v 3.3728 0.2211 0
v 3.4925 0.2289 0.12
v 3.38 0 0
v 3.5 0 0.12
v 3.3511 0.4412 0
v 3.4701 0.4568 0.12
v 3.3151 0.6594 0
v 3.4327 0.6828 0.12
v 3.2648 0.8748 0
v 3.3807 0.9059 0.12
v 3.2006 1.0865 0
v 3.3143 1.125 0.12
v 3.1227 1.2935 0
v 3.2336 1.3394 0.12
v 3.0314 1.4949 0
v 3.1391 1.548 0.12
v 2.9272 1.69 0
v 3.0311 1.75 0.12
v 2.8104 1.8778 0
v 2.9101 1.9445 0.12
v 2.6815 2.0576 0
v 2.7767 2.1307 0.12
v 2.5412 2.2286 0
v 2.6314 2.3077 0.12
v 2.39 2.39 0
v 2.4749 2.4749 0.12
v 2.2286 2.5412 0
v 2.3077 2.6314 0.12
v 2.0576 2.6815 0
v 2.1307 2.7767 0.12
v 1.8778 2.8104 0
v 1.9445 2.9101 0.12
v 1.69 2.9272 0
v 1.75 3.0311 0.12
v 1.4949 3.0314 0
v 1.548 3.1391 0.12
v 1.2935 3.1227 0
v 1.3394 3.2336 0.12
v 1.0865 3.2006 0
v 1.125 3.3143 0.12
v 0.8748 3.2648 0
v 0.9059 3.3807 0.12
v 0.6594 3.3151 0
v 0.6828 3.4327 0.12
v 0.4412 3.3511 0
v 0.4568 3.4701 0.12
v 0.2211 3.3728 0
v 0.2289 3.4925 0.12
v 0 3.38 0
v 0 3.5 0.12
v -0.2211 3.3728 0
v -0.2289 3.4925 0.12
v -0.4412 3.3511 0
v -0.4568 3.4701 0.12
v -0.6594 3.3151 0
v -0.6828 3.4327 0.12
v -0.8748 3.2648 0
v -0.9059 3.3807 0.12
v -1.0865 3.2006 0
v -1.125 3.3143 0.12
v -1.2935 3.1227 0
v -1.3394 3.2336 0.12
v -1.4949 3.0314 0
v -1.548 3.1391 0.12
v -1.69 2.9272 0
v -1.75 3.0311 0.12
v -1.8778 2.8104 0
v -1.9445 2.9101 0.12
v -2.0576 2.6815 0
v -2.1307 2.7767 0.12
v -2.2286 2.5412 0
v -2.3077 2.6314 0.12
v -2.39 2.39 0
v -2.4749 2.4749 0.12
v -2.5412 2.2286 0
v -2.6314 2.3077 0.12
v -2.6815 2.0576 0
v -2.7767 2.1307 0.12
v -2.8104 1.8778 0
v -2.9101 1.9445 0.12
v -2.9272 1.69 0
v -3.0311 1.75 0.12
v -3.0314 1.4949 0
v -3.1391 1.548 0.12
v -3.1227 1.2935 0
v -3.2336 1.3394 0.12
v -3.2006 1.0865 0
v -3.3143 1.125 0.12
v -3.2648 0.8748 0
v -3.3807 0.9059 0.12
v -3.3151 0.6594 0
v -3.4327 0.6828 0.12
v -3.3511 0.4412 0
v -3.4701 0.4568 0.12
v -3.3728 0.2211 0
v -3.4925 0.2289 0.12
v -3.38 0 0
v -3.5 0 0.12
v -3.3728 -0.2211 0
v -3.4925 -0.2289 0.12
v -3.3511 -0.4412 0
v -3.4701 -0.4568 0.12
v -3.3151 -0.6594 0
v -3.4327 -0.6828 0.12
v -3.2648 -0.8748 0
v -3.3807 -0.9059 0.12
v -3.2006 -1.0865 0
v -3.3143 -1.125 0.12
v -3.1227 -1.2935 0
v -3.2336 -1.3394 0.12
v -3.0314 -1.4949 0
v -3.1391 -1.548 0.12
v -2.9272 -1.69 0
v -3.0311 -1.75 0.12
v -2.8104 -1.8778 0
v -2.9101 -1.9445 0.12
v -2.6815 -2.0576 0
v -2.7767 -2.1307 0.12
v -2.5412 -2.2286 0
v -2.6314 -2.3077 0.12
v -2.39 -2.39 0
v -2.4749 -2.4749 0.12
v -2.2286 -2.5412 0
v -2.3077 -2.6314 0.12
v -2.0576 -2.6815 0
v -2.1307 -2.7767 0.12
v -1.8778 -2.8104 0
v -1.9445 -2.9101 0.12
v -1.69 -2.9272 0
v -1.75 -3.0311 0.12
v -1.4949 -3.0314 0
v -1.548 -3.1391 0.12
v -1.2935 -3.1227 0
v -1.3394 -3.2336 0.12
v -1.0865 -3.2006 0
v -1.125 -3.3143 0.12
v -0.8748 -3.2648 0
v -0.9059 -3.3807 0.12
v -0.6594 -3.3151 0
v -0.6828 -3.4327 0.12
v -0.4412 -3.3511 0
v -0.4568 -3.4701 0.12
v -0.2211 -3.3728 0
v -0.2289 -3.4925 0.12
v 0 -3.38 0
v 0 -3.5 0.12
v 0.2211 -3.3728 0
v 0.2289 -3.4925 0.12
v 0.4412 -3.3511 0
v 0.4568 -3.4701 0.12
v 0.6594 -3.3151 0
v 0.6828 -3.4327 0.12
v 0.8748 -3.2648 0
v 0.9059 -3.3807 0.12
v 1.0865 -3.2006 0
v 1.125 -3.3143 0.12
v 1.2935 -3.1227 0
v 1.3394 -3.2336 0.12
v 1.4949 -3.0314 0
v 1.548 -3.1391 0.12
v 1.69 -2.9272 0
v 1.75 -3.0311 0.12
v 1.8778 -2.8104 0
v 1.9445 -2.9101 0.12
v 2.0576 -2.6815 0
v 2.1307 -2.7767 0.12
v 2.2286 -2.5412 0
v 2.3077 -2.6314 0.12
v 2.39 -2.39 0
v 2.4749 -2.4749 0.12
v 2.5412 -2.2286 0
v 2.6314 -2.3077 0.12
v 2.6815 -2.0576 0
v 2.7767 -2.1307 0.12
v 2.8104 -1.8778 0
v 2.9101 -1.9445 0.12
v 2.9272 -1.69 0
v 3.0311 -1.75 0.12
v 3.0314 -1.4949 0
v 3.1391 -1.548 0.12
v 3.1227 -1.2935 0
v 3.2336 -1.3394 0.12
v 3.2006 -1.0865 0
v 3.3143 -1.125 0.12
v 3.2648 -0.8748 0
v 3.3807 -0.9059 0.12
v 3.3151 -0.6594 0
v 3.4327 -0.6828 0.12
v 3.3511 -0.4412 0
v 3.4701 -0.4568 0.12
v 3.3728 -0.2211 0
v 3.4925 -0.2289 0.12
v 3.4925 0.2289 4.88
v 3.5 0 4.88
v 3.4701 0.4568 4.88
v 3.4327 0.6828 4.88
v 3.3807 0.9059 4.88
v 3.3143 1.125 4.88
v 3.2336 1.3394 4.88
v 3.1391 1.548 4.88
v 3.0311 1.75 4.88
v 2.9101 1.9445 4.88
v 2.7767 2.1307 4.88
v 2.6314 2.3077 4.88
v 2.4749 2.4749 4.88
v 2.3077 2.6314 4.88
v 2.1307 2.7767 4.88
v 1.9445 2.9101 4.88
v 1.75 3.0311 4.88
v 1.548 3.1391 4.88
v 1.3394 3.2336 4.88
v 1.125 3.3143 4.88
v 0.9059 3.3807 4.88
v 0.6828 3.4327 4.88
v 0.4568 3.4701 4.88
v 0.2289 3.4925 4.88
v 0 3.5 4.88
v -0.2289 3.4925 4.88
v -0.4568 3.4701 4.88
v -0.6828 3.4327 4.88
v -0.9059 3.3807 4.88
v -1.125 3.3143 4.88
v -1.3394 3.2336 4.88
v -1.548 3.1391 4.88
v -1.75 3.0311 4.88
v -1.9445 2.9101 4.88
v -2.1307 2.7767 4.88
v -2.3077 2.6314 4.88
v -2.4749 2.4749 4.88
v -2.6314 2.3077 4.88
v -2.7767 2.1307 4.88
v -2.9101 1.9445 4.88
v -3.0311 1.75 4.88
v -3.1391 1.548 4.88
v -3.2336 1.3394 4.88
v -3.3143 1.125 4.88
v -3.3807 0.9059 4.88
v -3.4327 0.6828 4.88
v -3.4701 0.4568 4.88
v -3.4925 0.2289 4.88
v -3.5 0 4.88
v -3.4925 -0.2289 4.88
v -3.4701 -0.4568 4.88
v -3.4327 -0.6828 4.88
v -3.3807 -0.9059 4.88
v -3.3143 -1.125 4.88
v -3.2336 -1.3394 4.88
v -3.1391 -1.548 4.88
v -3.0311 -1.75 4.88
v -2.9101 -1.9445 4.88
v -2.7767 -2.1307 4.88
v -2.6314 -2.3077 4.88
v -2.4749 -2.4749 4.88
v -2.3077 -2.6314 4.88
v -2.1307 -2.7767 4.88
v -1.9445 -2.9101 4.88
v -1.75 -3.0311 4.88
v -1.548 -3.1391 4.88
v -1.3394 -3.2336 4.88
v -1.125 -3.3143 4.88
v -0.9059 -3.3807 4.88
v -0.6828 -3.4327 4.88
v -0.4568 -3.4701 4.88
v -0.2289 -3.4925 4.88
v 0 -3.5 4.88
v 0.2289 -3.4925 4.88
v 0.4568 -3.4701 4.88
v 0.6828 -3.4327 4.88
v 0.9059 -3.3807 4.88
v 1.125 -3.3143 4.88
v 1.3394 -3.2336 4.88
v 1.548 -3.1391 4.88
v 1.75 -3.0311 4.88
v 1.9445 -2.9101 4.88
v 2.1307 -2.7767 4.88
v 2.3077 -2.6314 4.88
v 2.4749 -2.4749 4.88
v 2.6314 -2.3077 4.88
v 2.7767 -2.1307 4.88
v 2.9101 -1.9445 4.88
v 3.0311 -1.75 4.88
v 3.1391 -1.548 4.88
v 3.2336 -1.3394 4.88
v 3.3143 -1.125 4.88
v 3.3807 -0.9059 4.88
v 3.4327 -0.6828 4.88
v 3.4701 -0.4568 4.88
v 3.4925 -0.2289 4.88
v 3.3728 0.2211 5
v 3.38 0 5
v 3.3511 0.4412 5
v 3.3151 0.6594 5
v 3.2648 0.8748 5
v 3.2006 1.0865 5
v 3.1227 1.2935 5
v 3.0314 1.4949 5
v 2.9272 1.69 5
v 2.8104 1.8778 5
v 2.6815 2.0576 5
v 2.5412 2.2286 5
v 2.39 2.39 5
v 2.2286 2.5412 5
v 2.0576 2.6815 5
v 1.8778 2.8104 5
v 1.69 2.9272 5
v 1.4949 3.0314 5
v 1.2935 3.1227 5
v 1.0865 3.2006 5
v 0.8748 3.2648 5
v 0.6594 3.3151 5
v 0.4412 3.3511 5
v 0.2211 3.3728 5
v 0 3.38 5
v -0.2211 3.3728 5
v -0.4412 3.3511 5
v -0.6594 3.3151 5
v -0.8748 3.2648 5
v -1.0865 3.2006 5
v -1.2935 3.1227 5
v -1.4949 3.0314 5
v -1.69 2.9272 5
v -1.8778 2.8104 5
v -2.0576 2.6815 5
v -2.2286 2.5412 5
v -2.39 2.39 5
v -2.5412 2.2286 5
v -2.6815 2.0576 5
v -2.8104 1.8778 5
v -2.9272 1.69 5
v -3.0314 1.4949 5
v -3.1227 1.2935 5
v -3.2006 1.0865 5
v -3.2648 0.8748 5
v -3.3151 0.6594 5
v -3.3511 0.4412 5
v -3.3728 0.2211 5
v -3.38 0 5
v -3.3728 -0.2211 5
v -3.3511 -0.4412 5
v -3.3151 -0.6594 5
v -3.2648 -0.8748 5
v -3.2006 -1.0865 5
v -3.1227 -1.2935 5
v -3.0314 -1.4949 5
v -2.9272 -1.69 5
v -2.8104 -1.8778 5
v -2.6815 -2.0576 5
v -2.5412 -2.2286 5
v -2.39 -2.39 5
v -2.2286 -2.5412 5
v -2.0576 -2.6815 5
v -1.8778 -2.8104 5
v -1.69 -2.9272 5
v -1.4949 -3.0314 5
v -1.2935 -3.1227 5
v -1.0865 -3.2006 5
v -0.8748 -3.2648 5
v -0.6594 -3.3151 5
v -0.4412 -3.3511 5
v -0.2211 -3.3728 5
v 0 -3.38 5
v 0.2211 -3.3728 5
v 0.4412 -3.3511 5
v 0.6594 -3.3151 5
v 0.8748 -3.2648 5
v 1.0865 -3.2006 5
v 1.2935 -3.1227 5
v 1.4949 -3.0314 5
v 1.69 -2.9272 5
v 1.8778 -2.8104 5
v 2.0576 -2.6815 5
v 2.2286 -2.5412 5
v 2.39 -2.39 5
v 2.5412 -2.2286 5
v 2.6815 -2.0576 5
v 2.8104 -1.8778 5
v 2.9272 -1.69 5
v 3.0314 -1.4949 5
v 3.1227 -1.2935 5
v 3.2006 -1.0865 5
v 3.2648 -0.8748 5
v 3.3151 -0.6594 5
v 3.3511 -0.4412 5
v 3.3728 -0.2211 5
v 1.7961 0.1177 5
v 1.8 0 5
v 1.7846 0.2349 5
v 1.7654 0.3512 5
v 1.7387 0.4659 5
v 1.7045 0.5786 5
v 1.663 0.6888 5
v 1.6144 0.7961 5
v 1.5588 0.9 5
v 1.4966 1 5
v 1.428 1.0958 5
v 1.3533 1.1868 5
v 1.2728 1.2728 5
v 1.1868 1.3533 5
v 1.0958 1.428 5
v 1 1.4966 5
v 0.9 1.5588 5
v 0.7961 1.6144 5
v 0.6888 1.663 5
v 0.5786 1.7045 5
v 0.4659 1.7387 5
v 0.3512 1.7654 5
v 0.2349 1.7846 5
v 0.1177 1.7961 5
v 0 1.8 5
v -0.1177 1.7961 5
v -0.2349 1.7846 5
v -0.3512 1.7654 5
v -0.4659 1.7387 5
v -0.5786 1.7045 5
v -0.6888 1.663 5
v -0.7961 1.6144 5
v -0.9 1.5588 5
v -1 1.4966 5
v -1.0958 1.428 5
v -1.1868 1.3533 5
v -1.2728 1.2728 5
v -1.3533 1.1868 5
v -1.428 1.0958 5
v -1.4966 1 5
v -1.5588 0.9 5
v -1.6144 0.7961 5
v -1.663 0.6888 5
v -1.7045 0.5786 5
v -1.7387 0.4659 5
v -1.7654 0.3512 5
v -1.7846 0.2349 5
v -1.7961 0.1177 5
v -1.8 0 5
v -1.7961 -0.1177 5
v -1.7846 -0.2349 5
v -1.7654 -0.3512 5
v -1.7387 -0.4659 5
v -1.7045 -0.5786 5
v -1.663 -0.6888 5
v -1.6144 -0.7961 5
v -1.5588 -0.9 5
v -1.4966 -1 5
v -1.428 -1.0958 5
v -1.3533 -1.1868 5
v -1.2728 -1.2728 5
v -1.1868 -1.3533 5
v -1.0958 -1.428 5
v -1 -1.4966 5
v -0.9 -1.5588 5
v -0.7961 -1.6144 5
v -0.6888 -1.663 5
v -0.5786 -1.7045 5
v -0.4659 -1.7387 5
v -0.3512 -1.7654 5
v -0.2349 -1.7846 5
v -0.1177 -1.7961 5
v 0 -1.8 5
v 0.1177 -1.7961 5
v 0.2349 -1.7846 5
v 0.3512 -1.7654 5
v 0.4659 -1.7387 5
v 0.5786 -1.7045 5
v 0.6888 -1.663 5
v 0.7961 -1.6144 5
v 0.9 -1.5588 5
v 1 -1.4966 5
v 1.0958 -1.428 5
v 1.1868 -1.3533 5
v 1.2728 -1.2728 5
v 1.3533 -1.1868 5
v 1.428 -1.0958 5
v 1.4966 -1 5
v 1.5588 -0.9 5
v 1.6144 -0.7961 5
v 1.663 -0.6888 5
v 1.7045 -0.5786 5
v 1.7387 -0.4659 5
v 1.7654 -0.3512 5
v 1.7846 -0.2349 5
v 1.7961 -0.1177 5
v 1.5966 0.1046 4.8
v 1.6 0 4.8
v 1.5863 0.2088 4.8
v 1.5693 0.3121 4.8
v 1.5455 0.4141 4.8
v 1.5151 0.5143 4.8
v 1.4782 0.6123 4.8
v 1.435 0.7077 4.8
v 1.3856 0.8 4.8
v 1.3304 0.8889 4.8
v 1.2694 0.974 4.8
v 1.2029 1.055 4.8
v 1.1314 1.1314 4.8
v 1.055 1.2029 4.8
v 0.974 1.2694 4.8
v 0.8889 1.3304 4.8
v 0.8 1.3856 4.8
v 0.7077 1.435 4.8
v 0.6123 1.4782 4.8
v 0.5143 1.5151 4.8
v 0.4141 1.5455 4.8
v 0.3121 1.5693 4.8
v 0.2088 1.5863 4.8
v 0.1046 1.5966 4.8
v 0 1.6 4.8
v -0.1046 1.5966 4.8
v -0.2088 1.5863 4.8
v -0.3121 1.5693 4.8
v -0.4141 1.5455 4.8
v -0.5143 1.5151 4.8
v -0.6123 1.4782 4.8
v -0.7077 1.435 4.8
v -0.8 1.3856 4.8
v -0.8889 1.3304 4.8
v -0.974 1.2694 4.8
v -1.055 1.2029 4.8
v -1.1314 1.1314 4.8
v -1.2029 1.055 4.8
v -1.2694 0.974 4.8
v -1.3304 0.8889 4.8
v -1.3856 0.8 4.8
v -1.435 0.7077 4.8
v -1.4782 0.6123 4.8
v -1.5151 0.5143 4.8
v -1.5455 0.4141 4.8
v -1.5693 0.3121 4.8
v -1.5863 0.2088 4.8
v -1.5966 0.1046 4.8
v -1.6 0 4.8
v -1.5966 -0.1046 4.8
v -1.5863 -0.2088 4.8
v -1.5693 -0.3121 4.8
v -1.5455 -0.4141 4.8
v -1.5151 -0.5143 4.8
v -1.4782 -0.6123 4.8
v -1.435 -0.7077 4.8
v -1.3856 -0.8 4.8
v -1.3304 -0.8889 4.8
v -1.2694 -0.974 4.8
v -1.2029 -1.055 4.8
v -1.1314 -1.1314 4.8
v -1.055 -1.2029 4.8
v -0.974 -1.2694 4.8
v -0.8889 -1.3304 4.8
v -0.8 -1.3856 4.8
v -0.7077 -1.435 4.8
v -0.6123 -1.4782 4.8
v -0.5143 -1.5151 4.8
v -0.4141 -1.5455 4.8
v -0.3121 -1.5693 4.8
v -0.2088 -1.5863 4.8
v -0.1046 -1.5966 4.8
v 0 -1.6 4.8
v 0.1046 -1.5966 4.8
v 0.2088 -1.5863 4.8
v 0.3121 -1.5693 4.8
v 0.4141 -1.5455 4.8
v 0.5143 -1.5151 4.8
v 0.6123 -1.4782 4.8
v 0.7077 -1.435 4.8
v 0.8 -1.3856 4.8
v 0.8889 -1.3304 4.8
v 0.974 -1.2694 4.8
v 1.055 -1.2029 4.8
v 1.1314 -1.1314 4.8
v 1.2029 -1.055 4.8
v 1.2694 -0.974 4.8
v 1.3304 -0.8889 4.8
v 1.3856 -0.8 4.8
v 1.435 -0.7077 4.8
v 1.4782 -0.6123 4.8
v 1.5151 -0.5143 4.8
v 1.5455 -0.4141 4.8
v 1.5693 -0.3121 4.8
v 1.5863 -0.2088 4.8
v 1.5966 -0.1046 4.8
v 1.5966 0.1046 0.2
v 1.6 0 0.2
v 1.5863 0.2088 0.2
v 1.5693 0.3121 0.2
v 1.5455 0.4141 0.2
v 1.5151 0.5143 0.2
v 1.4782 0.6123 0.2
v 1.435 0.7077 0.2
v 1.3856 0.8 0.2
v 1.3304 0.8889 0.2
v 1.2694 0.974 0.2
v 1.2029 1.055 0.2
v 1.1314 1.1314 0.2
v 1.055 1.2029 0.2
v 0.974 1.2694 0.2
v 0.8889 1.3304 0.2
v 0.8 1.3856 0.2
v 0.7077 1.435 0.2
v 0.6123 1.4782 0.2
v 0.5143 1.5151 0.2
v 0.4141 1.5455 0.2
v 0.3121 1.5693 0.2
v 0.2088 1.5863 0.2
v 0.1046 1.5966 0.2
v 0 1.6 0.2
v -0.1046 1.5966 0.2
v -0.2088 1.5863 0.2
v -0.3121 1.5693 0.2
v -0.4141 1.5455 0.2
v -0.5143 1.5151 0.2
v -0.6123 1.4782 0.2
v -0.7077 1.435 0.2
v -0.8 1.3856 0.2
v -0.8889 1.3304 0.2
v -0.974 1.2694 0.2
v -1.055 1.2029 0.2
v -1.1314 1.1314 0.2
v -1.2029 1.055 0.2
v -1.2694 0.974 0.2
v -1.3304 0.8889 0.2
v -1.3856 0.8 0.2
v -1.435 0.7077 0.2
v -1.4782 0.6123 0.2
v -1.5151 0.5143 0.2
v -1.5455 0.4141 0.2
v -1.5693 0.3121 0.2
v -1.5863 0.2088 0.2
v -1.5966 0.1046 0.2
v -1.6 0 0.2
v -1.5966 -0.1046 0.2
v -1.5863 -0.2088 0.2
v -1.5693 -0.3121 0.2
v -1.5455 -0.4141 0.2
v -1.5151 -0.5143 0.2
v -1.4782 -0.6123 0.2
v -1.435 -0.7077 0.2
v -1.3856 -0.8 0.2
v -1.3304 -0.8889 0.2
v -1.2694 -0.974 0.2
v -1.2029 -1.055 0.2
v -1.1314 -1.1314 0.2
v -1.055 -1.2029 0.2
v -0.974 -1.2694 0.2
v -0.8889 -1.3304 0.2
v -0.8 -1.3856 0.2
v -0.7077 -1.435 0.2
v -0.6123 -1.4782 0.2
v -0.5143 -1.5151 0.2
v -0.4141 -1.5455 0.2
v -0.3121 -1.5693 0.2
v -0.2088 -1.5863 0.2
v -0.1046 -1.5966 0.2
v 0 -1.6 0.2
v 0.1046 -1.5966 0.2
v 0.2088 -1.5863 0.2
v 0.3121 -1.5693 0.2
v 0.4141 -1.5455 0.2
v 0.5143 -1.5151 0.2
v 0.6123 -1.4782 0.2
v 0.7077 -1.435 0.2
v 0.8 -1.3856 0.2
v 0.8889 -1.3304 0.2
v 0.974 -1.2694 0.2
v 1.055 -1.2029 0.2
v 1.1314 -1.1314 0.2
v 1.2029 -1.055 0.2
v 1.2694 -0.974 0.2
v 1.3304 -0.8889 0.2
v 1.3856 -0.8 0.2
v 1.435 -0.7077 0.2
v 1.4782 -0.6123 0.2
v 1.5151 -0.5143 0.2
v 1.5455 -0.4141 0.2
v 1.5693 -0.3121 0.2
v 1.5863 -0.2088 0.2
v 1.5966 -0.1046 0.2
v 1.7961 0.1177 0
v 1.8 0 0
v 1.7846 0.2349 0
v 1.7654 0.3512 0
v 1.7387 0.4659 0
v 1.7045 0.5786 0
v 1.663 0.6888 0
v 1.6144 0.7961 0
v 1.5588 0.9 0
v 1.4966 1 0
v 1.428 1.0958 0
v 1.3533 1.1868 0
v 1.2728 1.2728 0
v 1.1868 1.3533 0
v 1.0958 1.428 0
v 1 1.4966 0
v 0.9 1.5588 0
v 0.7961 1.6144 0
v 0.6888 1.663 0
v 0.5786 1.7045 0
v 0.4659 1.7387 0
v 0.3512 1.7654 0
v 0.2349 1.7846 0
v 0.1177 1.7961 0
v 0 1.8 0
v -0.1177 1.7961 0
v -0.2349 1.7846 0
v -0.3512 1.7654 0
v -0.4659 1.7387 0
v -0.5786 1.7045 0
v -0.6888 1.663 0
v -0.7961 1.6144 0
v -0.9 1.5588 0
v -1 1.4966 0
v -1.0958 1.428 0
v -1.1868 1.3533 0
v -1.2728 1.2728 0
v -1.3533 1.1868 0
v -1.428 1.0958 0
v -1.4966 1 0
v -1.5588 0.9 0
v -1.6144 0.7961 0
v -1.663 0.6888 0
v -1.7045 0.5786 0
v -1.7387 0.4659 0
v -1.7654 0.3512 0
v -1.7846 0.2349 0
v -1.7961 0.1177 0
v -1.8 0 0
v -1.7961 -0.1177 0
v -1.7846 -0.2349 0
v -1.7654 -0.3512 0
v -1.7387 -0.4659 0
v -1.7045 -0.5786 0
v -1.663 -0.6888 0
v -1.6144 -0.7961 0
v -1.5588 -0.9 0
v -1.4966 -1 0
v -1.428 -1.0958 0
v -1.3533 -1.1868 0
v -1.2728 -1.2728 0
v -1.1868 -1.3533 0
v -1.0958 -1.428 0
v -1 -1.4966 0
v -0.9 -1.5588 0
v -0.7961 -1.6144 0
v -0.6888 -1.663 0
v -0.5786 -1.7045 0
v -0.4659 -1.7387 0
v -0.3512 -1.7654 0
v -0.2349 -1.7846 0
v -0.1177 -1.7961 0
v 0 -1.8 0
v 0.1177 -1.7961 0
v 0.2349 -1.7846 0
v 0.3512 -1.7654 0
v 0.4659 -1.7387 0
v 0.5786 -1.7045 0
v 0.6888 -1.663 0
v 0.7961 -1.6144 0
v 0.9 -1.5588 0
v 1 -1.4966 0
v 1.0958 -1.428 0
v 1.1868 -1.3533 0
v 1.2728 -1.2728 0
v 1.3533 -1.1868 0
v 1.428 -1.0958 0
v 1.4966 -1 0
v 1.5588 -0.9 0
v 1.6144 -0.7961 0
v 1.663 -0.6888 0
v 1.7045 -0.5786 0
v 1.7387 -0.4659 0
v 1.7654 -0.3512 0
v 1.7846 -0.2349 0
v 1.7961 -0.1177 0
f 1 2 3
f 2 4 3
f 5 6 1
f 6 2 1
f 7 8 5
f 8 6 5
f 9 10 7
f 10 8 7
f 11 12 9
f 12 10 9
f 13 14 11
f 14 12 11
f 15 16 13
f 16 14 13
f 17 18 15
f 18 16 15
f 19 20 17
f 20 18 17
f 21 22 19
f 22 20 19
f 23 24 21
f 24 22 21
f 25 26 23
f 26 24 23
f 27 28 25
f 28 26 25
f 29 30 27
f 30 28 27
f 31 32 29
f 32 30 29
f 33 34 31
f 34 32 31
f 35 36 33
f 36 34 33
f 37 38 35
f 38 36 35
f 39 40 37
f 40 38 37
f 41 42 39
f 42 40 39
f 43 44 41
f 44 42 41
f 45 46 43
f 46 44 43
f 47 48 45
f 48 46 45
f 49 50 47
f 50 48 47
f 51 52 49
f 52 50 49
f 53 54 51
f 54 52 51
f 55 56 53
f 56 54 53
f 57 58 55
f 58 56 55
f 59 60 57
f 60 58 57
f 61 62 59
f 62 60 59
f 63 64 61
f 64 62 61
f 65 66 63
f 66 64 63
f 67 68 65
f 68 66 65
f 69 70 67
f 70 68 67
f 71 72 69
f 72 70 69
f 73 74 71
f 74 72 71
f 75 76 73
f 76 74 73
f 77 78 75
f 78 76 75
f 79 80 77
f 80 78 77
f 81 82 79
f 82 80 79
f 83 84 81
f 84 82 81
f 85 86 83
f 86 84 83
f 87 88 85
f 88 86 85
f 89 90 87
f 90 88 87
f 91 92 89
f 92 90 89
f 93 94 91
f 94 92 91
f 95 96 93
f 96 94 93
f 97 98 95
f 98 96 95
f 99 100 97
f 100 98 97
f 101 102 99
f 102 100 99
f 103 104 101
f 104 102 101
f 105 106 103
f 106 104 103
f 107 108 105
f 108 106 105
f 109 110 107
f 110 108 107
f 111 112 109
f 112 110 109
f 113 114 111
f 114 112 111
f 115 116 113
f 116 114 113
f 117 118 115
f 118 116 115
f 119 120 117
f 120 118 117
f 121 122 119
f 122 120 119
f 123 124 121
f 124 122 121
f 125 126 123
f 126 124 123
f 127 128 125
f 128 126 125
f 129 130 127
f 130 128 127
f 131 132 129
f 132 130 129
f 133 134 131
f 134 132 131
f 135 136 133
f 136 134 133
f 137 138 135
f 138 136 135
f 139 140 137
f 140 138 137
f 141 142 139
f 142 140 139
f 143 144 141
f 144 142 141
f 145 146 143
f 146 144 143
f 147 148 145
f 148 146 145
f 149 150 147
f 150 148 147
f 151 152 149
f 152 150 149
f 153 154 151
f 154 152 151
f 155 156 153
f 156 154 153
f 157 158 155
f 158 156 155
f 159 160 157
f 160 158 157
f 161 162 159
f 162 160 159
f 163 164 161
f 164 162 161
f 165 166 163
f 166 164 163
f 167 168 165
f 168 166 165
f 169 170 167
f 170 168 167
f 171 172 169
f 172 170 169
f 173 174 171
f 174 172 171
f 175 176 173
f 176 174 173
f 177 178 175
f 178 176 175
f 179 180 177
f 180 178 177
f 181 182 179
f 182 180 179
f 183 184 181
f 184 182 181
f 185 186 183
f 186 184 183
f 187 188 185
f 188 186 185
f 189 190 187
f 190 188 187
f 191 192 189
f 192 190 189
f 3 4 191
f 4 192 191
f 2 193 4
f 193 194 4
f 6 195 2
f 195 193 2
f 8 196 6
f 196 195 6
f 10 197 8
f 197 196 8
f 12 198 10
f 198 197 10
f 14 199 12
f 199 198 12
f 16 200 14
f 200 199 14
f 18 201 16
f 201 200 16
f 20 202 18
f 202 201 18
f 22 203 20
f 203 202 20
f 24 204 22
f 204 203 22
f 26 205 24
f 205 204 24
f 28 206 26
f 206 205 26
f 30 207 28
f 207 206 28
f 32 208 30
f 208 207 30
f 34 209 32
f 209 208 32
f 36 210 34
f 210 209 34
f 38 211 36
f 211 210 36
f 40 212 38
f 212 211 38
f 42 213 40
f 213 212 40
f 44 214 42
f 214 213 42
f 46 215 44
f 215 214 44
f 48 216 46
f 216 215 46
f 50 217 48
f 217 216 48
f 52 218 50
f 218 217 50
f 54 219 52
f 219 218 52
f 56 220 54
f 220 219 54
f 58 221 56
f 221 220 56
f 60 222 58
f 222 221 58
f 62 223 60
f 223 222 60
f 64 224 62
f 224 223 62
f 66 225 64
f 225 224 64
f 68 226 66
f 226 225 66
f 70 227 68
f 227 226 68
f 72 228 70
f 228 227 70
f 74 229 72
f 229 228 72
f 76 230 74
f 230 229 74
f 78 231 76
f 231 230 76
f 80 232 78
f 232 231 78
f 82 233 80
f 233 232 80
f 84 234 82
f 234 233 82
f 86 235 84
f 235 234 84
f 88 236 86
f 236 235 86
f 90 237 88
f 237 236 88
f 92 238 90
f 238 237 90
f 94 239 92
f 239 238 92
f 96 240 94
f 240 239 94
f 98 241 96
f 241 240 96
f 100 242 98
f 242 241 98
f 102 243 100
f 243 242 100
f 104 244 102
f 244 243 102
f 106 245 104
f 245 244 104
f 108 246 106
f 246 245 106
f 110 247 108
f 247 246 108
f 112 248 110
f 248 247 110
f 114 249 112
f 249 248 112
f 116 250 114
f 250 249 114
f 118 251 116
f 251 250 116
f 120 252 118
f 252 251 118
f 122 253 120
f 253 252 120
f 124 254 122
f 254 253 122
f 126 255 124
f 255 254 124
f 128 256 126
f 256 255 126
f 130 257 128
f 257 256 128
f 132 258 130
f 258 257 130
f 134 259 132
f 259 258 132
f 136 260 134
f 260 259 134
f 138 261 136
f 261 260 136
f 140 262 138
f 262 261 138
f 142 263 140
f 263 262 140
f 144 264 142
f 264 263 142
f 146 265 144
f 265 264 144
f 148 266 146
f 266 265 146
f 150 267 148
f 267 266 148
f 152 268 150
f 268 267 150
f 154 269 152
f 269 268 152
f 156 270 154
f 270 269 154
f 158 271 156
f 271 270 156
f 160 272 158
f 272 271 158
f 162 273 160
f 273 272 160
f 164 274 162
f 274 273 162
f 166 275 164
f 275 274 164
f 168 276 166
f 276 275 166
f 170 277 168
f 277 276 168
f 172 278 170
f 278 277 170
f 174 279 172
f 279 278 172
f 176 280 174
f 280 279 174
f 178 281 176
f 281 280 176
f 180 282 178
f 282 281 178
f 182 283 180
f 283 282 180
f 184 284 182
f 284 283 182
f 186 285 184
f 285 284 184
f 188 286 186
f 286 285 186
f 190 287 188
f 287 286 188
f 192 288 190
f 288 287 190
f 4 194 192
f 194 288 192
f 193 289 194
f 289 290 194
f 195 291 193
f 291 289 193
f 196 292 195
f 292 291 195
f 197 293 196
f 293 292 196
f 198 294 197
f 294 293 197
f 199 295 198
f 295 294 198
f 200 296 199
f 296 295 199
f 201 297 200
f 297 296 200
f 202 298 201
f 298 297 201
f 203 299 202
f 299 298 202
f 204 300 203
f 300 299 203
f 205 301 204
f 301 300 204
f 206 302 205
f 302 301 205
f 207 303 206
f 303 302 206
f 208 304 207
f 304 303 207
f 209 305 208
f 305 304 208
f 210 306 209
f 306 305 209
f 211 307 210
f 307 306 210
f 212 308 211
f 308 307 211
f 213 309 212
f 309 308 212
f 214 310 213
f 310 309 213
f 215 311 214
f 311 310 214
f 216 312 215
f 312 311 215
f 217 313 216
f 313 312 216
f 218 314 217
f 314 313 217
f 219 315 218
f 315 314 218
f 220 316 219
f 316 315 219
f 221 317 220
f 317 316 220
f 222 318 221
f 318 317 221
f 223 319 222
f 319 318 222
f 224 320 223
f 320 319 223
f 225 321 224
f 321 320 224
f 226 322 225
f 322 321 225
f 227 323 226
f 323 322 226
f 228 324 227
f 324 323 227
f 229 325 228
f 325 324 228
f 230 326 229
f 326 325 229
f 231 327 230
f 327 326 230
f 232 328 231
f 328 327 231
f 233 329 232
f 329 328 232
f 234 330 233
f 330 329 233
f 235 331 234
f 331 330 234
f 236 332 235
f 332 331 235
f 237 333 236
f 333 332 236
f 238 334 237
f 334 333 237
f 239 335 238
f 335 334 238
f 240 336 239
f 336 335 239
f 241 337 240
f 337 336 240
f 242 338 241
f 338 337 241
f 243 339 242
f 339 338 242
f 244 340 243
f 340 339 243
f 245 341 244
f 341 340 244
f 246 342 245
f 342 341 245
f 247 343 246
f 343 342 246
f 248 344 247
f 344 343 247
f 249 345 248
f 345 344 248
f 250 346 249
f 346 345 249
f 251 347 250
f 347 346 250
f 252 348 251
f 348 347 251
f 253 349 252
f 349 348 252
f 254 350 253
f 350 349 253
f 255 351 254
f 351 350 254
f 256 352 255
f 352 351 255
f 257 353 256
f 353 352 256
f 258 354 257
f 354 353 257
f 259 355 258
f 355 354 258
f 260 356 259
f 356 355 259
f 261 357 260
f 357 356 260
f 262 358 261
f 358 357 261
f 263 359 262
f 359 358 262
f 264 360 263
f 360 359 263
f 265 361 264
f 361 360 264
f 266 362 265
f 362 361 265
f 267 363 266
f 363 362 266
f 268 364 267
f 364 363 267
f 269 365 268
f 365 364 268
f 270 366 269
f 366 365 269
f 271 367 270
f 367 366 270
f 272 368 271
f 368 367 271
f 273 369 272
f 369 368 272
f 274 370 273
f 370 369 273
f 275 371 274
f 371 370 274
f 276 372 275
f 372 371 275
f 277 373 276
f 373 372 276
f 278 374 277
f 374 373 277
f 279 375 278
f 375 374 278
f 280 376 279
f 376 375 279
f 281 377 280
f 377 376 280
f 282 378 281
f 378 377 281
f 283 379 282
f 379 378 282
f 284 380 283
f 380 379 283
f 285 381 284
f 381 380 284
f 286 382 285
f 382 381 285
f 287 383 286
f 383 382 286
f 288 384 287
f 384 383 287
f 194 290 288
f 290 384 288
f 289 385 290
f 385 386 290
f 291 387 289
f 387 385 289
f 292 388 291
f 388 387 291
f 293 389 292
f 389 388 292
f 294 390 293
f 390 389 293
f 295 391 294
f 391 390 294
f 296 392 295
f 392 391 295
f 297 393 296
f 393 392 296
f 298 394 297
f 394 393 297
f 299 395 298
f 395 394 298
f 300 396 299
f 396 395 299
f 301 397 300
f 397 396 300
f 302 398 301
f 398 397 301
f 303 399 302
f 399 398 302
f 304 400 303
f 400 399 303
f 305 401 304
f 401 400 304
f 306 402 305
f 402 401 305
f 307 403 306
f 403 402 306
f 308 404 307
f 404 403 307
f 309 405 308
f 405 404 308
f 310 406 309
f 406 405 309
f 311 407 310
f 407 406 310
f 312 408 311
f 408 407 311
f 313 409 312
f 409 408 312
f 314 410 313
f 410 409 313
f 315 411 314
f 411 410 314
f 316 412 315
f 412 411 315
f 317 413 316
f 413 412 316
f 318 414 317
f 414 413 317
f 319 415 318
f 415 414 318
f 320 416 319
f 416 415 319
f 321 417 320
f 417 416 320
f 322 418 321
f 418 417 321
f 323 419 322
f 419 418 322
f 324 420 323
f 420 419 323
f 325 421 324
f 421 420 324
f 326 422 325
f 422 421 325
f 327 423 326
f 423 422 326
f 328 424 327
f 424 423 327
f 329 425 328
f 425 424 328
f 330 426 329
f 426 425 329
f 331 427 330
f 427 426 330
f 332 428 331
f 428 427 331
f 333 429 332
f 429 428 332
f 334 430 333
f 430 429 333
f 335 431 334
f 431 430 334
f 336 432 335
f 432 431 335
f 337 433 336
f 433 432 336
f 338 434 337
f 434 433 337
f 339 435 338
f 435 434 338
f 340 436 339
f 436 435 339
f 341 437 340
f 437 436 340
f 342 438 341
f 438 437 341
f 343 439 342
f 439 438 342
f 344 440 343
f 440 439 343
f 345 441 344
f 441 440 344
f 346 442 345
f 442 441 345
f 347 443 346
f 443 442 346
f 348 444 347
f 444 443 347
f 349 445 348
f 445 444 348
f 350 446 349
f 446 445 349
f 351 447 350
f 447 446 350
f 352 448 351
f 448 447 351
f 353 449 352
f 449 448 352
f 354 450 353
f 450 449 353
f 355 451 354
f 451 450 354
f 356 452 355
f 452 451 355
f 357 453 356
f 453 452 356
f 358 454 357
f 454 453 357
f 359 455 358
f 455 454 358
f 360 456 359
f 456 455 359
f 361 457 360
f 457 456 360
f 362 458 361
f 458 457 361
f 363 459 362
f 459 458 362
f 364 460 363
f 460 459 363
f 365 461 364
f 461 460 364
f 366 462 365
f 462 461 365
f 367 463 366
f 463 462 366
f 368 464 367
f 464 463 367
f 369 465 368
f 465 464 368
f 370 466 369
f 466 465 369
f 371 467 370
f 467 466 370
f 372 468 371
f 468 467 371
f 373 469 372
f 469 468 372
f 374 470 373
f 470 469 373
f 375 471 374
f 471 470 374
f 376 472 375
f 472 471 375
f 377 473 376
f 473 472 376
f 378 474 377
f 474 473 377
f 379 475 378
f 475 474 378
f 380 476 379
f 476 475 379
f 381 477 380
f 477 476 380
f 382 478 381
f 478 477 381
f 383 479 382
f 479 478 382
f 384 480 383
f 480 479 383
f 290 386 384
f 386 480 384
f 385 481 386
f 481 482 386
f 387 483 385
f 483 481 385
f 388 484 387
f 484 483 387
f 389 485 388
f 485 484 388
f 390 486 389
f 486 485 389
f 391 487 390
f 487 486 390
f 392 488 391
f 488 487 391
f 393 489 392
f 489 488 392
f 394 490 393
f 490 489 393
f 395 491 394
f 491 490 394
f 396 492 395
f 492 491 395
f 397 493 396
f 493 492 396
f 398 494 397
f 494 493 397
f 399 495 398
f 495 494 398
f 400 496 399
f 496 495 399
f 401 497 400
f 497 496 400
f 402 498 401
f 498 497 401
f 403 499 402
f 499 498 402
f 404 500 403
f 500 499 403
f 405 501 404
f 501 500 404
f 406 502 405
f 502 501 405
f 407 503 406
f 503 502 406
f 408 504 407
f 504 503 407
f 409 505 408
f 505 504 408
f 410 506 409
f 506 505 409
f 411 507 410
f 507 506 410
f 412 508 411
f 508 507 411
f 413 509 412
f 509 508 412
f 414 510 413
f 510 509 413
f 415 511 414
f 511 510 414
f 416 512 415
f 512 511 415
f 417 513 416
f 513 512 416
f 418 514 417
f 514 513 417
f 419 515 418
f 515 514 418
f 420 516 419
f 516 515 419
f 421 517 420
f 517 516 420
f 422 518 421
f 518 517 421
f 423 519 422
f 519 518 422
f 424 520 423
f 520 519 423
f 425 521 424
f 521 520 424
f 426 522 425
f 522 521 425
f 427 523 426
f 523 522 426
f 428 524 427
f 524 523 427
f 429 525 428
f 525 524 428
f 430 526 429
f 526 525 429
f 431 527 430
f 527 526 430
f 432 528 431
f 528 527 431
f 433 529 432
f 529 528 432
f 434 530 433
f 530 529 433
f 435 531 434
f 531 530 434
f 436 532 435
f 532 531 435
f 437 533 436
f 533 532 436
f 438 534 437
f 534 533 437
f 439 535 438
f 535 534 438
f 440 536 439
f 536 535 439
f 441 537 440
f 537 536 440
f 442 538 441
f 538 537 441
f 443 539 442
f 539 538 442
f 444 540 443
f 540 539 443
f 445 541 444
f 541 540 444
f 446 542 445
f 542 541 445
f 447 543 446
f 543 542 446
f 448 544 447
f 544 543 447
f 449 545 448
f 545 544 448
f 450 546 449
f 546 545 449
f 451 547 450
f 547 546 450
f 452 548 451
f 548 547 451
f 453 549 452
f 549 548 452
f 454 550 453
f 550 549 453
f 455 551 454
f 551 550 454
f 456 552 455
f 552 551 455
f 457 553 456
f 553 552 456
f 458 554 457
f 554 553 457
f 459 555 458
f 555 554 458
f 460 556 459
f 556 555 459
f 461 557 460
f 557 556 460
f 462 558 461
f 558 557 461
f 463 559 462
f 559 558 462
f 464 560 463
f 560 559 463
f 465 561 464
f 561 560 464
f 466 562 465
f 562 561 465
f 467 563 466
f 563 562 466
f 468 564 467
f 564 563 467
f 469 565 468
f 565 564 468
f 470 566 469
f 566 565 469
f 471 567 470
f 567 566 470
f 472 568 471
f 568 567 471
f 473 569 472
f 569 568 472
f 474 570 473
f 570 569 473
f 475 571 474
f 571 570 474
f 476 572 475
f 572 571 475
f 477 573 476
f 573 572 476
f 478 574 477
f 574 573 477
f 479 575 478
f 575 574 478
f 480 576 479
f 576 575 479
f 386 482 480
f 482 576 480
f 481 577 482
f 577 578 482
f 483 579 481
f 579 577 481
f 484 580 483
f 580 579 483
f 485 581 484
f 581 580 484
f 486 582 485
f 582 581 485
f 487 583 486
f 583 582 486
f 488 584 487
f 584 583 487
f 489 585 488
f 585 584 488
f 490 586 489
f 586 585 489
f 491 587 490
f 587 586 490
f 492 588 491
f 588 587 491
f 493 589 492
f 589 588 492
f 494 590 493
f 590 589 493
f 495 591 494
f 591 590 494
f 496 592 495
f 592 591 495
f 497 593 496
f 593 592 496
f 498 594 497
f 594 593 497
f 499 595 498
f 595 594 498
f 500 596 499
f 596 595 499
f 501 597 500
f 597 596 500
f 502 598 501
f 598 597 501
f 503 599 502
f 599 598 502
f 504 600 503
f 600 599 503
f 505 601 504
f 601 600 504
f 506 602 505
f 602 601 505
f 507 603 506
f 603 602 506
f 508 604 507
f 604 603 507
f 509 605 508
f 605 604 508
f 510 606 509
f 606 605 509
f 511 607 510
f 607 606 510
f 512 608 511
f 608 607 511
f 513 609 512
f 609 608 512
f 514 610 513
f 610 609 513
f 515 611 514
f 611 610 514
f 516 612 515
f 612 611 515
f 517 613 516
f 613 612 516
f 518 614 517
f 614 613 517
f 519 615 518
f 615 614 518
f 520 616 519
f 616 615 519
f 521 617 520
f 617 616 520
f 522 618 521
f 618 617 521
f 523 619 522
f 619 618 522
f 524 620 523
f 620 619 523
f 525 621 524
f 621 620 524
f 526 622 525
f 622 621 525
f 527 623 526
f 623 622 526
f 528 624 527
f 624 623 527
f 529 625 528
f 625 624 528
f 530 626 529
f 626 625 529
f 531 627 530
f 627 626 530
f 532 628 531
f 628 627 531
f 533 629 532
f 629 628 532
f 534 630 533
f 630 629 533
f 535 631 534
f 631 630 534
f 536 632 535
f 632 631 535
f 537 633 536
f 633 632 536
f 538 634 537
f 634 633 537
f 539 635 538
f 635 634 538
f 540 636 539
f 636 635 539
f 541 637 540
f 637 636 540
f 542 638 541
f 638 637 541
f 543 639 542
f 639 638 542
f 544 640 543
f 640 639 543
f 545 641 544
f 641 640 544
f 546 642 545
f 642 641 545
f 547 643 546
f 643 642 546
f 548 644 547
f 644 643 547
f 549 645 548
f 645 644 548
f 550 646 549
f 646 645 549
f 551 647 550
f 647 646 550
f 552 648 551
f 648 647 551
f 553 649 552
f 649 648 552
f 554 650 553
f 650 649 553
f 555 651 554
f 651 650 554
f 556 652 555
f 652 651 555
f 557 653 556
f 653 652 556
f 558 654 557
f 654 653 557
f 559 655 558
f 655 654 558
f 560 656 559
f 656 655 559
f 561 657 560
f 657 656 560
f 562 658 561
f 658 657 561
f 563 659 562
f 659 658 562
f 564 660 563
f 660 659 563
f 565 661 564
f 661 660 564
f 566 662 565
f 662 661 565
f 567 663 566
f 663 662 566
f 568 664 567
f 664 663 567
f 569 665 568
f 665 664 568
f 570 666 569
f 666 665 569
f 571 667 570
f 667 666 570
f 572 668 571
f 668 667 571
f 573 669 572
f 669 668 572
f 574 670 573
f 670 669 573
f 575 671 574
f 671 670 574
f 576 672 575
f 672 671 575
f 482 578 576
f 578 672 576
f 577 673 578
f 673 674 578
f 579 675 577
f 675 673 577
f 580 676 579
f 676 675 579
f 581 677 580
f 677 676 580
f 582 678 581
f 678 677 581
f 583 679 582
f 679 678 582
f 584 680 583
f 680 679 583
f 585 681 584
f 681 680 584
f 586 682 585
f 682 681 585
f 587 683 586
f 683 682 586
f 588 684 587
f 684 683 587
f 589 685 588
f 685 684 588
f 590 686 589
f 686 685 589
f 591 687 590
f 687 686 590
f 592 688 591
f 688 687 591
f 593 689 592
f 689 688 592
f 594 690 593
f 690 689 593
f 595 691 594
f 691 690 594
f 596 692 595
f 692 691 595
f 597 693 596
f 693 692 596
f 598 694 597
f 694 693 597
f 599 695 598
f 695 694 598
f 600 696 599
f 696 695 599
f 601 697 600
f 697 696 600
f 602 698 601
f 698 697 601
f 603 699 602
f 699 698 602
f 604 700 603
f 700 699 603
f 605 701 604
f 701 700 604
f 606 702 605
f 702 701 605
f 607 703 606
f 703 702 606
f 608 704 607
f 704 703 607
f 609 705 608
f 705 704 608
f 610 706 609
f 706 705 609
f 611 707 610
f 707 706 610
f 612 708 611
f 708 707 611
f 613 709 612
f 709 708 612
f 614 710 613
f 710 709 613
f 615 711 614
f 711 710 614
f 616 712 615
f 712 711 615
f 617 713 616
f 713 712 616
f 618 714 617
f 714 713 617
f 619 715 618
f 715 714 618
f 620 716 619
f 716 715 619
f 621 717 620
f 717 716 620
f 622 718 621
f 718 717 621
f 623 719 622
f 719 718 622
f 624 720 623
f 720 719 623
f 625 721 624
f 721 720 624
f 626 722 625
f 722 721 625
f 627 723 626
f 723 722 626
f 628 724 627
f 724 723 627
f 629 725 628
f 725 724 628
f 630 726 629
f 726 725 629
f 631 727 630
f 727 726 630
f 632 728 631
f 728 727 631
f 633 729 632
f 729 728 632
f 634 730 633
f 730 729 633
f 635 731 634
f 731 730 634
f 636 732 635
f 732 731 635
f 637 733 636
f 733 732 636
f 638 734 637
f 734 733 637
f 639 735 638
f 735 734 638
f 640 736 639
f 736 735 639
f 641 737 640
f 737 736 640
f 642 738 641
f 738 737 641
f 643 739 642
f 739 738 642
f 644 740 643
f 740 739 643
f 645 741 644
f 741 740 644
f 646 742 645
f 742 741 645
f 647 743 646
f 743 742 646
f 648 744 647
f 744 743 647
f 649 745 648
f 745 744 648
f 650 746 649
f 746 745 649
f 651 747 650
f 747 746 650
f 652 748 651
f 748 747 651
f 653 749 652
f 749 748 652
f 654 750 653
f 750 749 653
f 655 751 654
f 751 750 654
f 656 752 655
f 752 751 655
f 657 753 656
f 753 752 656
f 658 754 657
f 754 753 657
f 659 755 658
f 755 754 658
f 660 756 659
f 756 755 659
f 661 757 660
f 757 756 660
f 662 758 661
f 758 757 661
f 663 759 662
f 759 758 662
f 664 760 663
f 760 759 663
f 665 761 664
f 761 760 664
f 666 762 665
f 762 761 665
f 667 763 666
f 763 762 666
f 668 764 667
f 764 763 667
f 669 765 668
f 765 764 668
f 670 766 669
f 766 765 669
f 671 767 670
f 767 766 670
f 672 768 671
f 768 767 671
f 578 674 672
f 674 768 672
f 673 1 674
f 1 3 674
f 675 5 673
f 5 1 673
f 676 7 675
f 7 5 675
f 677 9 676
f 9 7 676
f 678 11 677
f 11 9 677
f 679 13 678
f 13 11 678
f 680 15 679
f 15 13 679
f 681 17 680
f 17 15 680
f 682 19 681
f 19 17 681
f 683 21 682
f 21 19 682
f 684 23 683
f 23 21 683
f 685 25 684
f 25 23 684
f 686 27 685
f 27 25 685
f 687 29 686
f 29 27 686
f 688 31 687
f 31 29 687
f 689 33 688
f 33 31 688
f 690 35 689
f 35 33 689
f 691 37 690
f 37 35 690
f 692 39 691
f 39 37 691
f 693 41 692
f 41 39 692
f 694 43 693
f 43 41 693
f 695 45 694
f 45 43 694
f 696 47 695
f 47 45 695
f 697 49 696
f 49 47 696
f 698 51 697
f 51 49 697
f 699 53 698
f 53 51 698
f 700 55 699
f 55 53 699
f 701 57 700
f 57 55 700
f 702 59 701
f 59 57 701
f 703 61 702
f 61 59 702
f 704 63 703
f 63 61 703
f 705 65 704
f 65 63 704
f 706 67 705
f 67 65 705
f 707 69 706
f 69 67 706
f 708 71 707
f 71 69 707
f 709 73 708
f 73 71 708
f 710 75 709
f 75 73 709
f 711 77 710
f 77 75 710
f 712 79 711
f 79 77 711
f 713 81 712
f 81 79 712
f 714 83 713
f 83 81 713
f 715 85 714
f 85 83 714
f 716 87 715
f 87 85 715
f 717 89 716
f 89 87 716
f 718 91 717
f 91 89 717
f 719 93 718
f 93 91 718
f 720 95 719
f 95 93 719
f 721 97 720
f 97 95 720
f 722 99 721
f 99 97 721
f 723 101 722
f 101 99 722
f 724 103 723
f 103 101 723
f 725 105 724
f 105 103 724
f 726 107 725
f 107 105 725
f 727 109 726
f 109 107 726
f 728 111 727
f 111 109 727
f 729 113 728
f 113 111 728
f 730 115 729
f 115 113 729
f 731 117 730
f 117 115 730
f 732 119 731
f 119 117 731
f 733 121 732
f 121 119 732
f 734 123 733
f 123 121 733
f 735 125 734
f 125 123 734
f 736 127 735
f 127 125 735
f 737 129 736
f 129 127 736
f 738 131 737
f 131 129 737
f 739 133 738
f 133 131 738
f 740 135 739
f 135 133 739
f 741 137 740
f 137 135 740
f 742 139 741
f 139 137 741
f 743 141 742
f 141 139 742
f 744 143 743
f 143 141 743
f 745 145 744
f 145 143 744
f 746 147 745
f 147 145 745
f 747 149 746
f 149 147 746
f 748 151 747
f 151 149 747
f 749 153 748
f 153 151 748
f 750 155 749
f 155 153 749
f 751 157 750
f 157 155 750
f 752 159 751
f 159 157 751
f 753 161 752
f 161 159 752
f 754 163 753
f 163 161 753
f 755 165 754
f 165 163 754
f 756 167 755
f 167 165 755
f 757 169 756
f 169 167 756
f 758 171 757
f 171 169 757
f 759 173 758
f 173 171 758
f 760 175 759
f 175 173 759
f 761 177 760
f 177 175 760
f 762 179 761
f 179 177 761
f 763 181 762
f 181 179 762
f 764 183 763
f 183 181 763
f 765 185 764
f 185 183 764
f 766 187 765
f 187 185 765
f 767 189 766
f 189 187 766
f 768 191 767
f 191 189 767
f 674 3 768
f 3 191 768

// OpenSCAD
// OOMP generic catalogue model; units: mm.
// Stud length is additional to body depth. Tapping depths are model assumptions.
variant = "full"; // [full, display]
family = "spacer";
connection_type = "plain";
depth_mm = 5;
stud_length_mm = 0;
tapped_depth_mm = 0;
bore_mm = 3.2;
outer_diameter_mm = 7;
across_flats_mm = 6;
thread_nominal_diameter_mm = 3;
thread_pitch_mm = 0.5;
edge_chamfer_mm = 0.12;
mouth_chamfer_mm = 0.2;
angular_segments = 96;
samples_per_pitch = 16;

// Boundary travels up the outside, then down any tapped/plain bore.
// Equal-height rings at shoulders form the annular shoulder faces.
n = angular_segments;
threaded = family == "standoff";
has_stud = connection_type == "stud_to_tapped" || connection_type == "stud_to_stud";
two_studs = connection_type == "stud_to_stud";
through = !threaded || connection_type == "tapped_to_tapped";
pitch = thread_pitch_mm;
diameter = threaded ? thread_nominal_diameter_mm : bore_mm;
minor = diameter - 5*sqrt(3)*pitch/8;
transition = mouth_chamfer_mm + (threaded ? 5*sqrt(3)*pitch/16 : 0);
tip_chamfer = mouth_chamfer_mm + 17*sqrt(3)*pitch/48;
function sorted(v) = len(v)<=1 ? v : let(p=v[0])
    concat(sorted([for(x=v) if(x<p-1e-8) x]), [p], sorted([for(x=v) if(x>p+1e-8) x]));
function reverse(v) = [for(i=[len(v)-1:-1:0]) v[i]];
function theta(i) = i*360/n;
function fract(x) = x-floor(x);
function phase_distance(i,z) = abs(fract(z/pitch-theta(i)/360+0.5)-0.5);
function thread_r(i,z) = minor/2 + min(5*sqrt(3)*pitch/16,
    max(0,(phase_distance(i,z)-0.125)*pitch*sqrt(3)));
function stud_r(i,z,tip) = min(diameter/2 - (variant=="full" ?
    min(17*sqrt(3)*pitch/48,max(0,(phase_distance(i,z)-0.0625)*pitch*sqrt(3))) : 0),
    diameter/2-tip_chamfer+abs(z-tip));
function body_r(i,z) = (threaded ? across_flats_mm/2/cos(theta(i)%60-30) : outer_diameter_mm/2)
    - max(0,edge_chamfer_mm-min(z,depth_mm-z));
function bore_r(i,z) = max(threaded ? (variant=="full" ? thread_r(i,z) : minor/2) : diameter/2,
    diameter/2+mouth_chamfer_mm-(through ? min(z,depth_mm-z) : depth_mm-z));
function stud_z(a,b,tip) = let(count=variant=="full" ? ceil(stud_length_mm/pitch*samples_per_pitch) : 1)
    sorted(concat([for(i=[0:count]) a+(b-a)*i/count], [tip==a ? tip+tip_chamfer : tip-tip_chamfer]));
body_z = sorted([0,edge_chamfer_mm,depth_mm-edge_chamfer_mm,depth_mm]);
low = through ? 0 : depth_mm-tapped_depth_mm;
count = threaded && variant=="full" ? ceil((depth_mm-low)/pitch*samples_per_pitch) : 1;
bore_z = two_studs ? [] : reverse(sorted(concat(
    [for(i=[0:count]) low+(depth_mm-low)*i/count],
    [depth_mm-mouth_chamfer_mm,depth_mm-transition],
    through ? [mouth_chamfer_mm,transition] : [])));
// Ring descriptors: [height, kind, tip]. Kind: 0 body, 1 stud, 2 bore.
rings = concat(
    has_stud ? [for(z=stud_z(-stud_length_mm,0,-stud_length_mm)) [z,1,-stud_length_mm]] : [],
    [for(z=body_z) [z,0,0]],
    two_studs ? [for(z=stud_z(depth_mm,depth_mm+stud_length_mm,depth_mm+stud_length_mm)) [z,1,depth_mm+stud_length_mm]] : [],
    [for(z=bore_z) [z,2,0]]);
function radius(i,ring) = ring[1]==0 ? body_r(i,ring[0]) :
    ring[1]==1 ? stud_r(i,ring[0],ring[2]) : bore_r(i,ring[0]);
points = concat([for(ring=rings) for(i=[0:n-1])
    [radius(i,ring)*cos(theta(i)),radius(i,ring)*sin(theta(i)),ring[0]]],
    through ? [] : [[0,0,rings[0][0]],[0,0,rings[len(rings)-1][0]]]);
center = len(rings)*n;
last = (len(rings)-1)*n;
// OpenSCAD winding is opposite to STL winding.
faces = concat(
    [for(j=[0:len(rings)-(through ? 1 : 2)]) for(i=[0:n-1]) each
        let(a=j*n+i,b=j*n+(i+1)%n,c=((j+1)%len(rings))*n+(i+1)%n,d=((j+1)%len(rings))*n+i)
        [[a,c,b],[a,d,c]]],
    through ? [] : [for(i=[0:n-1]) each let(k=(i+1)%n)
        [[center,i,k],[center+1,last+k,last+i]]]);
assert(family=="spacer" || family=="standoff");
assert(!threaded || connection_type=="tapped_to_tapped" || has_stud);
assert(depth_mm>0 && diameter>0 && pitch>0);
assert(variant=="full" || variant=="display");
assert(n>=24 && n%12==0 && samples_per_pitch>=8);
assert(mouth_chamfer_mm>0 && mouth_chamfer_mm<depth_mm/2);
assert(edge_chamfer_mm>=0 && edge_chamfer_mm<depth_mm/2);
assert(diameter+4*max(mouth_chamfer_mm,edge_chamfer_mm) < (threaded ? across_flats_mm : outer_diameter_mm));
assert(!has_stud || stud_length_mm>2*mouth_chamfer_mm);
assert(!through || !threaded || 2*transition<depth_mm);
assert(connection_type!="stud_to_tapped" || (tapped_depth_mm>transition && tapped_depth_mm<depth_mm));
color([0.86,0.85,0.81]) polyhedron(points=points,faces=faces,convexity=20);
